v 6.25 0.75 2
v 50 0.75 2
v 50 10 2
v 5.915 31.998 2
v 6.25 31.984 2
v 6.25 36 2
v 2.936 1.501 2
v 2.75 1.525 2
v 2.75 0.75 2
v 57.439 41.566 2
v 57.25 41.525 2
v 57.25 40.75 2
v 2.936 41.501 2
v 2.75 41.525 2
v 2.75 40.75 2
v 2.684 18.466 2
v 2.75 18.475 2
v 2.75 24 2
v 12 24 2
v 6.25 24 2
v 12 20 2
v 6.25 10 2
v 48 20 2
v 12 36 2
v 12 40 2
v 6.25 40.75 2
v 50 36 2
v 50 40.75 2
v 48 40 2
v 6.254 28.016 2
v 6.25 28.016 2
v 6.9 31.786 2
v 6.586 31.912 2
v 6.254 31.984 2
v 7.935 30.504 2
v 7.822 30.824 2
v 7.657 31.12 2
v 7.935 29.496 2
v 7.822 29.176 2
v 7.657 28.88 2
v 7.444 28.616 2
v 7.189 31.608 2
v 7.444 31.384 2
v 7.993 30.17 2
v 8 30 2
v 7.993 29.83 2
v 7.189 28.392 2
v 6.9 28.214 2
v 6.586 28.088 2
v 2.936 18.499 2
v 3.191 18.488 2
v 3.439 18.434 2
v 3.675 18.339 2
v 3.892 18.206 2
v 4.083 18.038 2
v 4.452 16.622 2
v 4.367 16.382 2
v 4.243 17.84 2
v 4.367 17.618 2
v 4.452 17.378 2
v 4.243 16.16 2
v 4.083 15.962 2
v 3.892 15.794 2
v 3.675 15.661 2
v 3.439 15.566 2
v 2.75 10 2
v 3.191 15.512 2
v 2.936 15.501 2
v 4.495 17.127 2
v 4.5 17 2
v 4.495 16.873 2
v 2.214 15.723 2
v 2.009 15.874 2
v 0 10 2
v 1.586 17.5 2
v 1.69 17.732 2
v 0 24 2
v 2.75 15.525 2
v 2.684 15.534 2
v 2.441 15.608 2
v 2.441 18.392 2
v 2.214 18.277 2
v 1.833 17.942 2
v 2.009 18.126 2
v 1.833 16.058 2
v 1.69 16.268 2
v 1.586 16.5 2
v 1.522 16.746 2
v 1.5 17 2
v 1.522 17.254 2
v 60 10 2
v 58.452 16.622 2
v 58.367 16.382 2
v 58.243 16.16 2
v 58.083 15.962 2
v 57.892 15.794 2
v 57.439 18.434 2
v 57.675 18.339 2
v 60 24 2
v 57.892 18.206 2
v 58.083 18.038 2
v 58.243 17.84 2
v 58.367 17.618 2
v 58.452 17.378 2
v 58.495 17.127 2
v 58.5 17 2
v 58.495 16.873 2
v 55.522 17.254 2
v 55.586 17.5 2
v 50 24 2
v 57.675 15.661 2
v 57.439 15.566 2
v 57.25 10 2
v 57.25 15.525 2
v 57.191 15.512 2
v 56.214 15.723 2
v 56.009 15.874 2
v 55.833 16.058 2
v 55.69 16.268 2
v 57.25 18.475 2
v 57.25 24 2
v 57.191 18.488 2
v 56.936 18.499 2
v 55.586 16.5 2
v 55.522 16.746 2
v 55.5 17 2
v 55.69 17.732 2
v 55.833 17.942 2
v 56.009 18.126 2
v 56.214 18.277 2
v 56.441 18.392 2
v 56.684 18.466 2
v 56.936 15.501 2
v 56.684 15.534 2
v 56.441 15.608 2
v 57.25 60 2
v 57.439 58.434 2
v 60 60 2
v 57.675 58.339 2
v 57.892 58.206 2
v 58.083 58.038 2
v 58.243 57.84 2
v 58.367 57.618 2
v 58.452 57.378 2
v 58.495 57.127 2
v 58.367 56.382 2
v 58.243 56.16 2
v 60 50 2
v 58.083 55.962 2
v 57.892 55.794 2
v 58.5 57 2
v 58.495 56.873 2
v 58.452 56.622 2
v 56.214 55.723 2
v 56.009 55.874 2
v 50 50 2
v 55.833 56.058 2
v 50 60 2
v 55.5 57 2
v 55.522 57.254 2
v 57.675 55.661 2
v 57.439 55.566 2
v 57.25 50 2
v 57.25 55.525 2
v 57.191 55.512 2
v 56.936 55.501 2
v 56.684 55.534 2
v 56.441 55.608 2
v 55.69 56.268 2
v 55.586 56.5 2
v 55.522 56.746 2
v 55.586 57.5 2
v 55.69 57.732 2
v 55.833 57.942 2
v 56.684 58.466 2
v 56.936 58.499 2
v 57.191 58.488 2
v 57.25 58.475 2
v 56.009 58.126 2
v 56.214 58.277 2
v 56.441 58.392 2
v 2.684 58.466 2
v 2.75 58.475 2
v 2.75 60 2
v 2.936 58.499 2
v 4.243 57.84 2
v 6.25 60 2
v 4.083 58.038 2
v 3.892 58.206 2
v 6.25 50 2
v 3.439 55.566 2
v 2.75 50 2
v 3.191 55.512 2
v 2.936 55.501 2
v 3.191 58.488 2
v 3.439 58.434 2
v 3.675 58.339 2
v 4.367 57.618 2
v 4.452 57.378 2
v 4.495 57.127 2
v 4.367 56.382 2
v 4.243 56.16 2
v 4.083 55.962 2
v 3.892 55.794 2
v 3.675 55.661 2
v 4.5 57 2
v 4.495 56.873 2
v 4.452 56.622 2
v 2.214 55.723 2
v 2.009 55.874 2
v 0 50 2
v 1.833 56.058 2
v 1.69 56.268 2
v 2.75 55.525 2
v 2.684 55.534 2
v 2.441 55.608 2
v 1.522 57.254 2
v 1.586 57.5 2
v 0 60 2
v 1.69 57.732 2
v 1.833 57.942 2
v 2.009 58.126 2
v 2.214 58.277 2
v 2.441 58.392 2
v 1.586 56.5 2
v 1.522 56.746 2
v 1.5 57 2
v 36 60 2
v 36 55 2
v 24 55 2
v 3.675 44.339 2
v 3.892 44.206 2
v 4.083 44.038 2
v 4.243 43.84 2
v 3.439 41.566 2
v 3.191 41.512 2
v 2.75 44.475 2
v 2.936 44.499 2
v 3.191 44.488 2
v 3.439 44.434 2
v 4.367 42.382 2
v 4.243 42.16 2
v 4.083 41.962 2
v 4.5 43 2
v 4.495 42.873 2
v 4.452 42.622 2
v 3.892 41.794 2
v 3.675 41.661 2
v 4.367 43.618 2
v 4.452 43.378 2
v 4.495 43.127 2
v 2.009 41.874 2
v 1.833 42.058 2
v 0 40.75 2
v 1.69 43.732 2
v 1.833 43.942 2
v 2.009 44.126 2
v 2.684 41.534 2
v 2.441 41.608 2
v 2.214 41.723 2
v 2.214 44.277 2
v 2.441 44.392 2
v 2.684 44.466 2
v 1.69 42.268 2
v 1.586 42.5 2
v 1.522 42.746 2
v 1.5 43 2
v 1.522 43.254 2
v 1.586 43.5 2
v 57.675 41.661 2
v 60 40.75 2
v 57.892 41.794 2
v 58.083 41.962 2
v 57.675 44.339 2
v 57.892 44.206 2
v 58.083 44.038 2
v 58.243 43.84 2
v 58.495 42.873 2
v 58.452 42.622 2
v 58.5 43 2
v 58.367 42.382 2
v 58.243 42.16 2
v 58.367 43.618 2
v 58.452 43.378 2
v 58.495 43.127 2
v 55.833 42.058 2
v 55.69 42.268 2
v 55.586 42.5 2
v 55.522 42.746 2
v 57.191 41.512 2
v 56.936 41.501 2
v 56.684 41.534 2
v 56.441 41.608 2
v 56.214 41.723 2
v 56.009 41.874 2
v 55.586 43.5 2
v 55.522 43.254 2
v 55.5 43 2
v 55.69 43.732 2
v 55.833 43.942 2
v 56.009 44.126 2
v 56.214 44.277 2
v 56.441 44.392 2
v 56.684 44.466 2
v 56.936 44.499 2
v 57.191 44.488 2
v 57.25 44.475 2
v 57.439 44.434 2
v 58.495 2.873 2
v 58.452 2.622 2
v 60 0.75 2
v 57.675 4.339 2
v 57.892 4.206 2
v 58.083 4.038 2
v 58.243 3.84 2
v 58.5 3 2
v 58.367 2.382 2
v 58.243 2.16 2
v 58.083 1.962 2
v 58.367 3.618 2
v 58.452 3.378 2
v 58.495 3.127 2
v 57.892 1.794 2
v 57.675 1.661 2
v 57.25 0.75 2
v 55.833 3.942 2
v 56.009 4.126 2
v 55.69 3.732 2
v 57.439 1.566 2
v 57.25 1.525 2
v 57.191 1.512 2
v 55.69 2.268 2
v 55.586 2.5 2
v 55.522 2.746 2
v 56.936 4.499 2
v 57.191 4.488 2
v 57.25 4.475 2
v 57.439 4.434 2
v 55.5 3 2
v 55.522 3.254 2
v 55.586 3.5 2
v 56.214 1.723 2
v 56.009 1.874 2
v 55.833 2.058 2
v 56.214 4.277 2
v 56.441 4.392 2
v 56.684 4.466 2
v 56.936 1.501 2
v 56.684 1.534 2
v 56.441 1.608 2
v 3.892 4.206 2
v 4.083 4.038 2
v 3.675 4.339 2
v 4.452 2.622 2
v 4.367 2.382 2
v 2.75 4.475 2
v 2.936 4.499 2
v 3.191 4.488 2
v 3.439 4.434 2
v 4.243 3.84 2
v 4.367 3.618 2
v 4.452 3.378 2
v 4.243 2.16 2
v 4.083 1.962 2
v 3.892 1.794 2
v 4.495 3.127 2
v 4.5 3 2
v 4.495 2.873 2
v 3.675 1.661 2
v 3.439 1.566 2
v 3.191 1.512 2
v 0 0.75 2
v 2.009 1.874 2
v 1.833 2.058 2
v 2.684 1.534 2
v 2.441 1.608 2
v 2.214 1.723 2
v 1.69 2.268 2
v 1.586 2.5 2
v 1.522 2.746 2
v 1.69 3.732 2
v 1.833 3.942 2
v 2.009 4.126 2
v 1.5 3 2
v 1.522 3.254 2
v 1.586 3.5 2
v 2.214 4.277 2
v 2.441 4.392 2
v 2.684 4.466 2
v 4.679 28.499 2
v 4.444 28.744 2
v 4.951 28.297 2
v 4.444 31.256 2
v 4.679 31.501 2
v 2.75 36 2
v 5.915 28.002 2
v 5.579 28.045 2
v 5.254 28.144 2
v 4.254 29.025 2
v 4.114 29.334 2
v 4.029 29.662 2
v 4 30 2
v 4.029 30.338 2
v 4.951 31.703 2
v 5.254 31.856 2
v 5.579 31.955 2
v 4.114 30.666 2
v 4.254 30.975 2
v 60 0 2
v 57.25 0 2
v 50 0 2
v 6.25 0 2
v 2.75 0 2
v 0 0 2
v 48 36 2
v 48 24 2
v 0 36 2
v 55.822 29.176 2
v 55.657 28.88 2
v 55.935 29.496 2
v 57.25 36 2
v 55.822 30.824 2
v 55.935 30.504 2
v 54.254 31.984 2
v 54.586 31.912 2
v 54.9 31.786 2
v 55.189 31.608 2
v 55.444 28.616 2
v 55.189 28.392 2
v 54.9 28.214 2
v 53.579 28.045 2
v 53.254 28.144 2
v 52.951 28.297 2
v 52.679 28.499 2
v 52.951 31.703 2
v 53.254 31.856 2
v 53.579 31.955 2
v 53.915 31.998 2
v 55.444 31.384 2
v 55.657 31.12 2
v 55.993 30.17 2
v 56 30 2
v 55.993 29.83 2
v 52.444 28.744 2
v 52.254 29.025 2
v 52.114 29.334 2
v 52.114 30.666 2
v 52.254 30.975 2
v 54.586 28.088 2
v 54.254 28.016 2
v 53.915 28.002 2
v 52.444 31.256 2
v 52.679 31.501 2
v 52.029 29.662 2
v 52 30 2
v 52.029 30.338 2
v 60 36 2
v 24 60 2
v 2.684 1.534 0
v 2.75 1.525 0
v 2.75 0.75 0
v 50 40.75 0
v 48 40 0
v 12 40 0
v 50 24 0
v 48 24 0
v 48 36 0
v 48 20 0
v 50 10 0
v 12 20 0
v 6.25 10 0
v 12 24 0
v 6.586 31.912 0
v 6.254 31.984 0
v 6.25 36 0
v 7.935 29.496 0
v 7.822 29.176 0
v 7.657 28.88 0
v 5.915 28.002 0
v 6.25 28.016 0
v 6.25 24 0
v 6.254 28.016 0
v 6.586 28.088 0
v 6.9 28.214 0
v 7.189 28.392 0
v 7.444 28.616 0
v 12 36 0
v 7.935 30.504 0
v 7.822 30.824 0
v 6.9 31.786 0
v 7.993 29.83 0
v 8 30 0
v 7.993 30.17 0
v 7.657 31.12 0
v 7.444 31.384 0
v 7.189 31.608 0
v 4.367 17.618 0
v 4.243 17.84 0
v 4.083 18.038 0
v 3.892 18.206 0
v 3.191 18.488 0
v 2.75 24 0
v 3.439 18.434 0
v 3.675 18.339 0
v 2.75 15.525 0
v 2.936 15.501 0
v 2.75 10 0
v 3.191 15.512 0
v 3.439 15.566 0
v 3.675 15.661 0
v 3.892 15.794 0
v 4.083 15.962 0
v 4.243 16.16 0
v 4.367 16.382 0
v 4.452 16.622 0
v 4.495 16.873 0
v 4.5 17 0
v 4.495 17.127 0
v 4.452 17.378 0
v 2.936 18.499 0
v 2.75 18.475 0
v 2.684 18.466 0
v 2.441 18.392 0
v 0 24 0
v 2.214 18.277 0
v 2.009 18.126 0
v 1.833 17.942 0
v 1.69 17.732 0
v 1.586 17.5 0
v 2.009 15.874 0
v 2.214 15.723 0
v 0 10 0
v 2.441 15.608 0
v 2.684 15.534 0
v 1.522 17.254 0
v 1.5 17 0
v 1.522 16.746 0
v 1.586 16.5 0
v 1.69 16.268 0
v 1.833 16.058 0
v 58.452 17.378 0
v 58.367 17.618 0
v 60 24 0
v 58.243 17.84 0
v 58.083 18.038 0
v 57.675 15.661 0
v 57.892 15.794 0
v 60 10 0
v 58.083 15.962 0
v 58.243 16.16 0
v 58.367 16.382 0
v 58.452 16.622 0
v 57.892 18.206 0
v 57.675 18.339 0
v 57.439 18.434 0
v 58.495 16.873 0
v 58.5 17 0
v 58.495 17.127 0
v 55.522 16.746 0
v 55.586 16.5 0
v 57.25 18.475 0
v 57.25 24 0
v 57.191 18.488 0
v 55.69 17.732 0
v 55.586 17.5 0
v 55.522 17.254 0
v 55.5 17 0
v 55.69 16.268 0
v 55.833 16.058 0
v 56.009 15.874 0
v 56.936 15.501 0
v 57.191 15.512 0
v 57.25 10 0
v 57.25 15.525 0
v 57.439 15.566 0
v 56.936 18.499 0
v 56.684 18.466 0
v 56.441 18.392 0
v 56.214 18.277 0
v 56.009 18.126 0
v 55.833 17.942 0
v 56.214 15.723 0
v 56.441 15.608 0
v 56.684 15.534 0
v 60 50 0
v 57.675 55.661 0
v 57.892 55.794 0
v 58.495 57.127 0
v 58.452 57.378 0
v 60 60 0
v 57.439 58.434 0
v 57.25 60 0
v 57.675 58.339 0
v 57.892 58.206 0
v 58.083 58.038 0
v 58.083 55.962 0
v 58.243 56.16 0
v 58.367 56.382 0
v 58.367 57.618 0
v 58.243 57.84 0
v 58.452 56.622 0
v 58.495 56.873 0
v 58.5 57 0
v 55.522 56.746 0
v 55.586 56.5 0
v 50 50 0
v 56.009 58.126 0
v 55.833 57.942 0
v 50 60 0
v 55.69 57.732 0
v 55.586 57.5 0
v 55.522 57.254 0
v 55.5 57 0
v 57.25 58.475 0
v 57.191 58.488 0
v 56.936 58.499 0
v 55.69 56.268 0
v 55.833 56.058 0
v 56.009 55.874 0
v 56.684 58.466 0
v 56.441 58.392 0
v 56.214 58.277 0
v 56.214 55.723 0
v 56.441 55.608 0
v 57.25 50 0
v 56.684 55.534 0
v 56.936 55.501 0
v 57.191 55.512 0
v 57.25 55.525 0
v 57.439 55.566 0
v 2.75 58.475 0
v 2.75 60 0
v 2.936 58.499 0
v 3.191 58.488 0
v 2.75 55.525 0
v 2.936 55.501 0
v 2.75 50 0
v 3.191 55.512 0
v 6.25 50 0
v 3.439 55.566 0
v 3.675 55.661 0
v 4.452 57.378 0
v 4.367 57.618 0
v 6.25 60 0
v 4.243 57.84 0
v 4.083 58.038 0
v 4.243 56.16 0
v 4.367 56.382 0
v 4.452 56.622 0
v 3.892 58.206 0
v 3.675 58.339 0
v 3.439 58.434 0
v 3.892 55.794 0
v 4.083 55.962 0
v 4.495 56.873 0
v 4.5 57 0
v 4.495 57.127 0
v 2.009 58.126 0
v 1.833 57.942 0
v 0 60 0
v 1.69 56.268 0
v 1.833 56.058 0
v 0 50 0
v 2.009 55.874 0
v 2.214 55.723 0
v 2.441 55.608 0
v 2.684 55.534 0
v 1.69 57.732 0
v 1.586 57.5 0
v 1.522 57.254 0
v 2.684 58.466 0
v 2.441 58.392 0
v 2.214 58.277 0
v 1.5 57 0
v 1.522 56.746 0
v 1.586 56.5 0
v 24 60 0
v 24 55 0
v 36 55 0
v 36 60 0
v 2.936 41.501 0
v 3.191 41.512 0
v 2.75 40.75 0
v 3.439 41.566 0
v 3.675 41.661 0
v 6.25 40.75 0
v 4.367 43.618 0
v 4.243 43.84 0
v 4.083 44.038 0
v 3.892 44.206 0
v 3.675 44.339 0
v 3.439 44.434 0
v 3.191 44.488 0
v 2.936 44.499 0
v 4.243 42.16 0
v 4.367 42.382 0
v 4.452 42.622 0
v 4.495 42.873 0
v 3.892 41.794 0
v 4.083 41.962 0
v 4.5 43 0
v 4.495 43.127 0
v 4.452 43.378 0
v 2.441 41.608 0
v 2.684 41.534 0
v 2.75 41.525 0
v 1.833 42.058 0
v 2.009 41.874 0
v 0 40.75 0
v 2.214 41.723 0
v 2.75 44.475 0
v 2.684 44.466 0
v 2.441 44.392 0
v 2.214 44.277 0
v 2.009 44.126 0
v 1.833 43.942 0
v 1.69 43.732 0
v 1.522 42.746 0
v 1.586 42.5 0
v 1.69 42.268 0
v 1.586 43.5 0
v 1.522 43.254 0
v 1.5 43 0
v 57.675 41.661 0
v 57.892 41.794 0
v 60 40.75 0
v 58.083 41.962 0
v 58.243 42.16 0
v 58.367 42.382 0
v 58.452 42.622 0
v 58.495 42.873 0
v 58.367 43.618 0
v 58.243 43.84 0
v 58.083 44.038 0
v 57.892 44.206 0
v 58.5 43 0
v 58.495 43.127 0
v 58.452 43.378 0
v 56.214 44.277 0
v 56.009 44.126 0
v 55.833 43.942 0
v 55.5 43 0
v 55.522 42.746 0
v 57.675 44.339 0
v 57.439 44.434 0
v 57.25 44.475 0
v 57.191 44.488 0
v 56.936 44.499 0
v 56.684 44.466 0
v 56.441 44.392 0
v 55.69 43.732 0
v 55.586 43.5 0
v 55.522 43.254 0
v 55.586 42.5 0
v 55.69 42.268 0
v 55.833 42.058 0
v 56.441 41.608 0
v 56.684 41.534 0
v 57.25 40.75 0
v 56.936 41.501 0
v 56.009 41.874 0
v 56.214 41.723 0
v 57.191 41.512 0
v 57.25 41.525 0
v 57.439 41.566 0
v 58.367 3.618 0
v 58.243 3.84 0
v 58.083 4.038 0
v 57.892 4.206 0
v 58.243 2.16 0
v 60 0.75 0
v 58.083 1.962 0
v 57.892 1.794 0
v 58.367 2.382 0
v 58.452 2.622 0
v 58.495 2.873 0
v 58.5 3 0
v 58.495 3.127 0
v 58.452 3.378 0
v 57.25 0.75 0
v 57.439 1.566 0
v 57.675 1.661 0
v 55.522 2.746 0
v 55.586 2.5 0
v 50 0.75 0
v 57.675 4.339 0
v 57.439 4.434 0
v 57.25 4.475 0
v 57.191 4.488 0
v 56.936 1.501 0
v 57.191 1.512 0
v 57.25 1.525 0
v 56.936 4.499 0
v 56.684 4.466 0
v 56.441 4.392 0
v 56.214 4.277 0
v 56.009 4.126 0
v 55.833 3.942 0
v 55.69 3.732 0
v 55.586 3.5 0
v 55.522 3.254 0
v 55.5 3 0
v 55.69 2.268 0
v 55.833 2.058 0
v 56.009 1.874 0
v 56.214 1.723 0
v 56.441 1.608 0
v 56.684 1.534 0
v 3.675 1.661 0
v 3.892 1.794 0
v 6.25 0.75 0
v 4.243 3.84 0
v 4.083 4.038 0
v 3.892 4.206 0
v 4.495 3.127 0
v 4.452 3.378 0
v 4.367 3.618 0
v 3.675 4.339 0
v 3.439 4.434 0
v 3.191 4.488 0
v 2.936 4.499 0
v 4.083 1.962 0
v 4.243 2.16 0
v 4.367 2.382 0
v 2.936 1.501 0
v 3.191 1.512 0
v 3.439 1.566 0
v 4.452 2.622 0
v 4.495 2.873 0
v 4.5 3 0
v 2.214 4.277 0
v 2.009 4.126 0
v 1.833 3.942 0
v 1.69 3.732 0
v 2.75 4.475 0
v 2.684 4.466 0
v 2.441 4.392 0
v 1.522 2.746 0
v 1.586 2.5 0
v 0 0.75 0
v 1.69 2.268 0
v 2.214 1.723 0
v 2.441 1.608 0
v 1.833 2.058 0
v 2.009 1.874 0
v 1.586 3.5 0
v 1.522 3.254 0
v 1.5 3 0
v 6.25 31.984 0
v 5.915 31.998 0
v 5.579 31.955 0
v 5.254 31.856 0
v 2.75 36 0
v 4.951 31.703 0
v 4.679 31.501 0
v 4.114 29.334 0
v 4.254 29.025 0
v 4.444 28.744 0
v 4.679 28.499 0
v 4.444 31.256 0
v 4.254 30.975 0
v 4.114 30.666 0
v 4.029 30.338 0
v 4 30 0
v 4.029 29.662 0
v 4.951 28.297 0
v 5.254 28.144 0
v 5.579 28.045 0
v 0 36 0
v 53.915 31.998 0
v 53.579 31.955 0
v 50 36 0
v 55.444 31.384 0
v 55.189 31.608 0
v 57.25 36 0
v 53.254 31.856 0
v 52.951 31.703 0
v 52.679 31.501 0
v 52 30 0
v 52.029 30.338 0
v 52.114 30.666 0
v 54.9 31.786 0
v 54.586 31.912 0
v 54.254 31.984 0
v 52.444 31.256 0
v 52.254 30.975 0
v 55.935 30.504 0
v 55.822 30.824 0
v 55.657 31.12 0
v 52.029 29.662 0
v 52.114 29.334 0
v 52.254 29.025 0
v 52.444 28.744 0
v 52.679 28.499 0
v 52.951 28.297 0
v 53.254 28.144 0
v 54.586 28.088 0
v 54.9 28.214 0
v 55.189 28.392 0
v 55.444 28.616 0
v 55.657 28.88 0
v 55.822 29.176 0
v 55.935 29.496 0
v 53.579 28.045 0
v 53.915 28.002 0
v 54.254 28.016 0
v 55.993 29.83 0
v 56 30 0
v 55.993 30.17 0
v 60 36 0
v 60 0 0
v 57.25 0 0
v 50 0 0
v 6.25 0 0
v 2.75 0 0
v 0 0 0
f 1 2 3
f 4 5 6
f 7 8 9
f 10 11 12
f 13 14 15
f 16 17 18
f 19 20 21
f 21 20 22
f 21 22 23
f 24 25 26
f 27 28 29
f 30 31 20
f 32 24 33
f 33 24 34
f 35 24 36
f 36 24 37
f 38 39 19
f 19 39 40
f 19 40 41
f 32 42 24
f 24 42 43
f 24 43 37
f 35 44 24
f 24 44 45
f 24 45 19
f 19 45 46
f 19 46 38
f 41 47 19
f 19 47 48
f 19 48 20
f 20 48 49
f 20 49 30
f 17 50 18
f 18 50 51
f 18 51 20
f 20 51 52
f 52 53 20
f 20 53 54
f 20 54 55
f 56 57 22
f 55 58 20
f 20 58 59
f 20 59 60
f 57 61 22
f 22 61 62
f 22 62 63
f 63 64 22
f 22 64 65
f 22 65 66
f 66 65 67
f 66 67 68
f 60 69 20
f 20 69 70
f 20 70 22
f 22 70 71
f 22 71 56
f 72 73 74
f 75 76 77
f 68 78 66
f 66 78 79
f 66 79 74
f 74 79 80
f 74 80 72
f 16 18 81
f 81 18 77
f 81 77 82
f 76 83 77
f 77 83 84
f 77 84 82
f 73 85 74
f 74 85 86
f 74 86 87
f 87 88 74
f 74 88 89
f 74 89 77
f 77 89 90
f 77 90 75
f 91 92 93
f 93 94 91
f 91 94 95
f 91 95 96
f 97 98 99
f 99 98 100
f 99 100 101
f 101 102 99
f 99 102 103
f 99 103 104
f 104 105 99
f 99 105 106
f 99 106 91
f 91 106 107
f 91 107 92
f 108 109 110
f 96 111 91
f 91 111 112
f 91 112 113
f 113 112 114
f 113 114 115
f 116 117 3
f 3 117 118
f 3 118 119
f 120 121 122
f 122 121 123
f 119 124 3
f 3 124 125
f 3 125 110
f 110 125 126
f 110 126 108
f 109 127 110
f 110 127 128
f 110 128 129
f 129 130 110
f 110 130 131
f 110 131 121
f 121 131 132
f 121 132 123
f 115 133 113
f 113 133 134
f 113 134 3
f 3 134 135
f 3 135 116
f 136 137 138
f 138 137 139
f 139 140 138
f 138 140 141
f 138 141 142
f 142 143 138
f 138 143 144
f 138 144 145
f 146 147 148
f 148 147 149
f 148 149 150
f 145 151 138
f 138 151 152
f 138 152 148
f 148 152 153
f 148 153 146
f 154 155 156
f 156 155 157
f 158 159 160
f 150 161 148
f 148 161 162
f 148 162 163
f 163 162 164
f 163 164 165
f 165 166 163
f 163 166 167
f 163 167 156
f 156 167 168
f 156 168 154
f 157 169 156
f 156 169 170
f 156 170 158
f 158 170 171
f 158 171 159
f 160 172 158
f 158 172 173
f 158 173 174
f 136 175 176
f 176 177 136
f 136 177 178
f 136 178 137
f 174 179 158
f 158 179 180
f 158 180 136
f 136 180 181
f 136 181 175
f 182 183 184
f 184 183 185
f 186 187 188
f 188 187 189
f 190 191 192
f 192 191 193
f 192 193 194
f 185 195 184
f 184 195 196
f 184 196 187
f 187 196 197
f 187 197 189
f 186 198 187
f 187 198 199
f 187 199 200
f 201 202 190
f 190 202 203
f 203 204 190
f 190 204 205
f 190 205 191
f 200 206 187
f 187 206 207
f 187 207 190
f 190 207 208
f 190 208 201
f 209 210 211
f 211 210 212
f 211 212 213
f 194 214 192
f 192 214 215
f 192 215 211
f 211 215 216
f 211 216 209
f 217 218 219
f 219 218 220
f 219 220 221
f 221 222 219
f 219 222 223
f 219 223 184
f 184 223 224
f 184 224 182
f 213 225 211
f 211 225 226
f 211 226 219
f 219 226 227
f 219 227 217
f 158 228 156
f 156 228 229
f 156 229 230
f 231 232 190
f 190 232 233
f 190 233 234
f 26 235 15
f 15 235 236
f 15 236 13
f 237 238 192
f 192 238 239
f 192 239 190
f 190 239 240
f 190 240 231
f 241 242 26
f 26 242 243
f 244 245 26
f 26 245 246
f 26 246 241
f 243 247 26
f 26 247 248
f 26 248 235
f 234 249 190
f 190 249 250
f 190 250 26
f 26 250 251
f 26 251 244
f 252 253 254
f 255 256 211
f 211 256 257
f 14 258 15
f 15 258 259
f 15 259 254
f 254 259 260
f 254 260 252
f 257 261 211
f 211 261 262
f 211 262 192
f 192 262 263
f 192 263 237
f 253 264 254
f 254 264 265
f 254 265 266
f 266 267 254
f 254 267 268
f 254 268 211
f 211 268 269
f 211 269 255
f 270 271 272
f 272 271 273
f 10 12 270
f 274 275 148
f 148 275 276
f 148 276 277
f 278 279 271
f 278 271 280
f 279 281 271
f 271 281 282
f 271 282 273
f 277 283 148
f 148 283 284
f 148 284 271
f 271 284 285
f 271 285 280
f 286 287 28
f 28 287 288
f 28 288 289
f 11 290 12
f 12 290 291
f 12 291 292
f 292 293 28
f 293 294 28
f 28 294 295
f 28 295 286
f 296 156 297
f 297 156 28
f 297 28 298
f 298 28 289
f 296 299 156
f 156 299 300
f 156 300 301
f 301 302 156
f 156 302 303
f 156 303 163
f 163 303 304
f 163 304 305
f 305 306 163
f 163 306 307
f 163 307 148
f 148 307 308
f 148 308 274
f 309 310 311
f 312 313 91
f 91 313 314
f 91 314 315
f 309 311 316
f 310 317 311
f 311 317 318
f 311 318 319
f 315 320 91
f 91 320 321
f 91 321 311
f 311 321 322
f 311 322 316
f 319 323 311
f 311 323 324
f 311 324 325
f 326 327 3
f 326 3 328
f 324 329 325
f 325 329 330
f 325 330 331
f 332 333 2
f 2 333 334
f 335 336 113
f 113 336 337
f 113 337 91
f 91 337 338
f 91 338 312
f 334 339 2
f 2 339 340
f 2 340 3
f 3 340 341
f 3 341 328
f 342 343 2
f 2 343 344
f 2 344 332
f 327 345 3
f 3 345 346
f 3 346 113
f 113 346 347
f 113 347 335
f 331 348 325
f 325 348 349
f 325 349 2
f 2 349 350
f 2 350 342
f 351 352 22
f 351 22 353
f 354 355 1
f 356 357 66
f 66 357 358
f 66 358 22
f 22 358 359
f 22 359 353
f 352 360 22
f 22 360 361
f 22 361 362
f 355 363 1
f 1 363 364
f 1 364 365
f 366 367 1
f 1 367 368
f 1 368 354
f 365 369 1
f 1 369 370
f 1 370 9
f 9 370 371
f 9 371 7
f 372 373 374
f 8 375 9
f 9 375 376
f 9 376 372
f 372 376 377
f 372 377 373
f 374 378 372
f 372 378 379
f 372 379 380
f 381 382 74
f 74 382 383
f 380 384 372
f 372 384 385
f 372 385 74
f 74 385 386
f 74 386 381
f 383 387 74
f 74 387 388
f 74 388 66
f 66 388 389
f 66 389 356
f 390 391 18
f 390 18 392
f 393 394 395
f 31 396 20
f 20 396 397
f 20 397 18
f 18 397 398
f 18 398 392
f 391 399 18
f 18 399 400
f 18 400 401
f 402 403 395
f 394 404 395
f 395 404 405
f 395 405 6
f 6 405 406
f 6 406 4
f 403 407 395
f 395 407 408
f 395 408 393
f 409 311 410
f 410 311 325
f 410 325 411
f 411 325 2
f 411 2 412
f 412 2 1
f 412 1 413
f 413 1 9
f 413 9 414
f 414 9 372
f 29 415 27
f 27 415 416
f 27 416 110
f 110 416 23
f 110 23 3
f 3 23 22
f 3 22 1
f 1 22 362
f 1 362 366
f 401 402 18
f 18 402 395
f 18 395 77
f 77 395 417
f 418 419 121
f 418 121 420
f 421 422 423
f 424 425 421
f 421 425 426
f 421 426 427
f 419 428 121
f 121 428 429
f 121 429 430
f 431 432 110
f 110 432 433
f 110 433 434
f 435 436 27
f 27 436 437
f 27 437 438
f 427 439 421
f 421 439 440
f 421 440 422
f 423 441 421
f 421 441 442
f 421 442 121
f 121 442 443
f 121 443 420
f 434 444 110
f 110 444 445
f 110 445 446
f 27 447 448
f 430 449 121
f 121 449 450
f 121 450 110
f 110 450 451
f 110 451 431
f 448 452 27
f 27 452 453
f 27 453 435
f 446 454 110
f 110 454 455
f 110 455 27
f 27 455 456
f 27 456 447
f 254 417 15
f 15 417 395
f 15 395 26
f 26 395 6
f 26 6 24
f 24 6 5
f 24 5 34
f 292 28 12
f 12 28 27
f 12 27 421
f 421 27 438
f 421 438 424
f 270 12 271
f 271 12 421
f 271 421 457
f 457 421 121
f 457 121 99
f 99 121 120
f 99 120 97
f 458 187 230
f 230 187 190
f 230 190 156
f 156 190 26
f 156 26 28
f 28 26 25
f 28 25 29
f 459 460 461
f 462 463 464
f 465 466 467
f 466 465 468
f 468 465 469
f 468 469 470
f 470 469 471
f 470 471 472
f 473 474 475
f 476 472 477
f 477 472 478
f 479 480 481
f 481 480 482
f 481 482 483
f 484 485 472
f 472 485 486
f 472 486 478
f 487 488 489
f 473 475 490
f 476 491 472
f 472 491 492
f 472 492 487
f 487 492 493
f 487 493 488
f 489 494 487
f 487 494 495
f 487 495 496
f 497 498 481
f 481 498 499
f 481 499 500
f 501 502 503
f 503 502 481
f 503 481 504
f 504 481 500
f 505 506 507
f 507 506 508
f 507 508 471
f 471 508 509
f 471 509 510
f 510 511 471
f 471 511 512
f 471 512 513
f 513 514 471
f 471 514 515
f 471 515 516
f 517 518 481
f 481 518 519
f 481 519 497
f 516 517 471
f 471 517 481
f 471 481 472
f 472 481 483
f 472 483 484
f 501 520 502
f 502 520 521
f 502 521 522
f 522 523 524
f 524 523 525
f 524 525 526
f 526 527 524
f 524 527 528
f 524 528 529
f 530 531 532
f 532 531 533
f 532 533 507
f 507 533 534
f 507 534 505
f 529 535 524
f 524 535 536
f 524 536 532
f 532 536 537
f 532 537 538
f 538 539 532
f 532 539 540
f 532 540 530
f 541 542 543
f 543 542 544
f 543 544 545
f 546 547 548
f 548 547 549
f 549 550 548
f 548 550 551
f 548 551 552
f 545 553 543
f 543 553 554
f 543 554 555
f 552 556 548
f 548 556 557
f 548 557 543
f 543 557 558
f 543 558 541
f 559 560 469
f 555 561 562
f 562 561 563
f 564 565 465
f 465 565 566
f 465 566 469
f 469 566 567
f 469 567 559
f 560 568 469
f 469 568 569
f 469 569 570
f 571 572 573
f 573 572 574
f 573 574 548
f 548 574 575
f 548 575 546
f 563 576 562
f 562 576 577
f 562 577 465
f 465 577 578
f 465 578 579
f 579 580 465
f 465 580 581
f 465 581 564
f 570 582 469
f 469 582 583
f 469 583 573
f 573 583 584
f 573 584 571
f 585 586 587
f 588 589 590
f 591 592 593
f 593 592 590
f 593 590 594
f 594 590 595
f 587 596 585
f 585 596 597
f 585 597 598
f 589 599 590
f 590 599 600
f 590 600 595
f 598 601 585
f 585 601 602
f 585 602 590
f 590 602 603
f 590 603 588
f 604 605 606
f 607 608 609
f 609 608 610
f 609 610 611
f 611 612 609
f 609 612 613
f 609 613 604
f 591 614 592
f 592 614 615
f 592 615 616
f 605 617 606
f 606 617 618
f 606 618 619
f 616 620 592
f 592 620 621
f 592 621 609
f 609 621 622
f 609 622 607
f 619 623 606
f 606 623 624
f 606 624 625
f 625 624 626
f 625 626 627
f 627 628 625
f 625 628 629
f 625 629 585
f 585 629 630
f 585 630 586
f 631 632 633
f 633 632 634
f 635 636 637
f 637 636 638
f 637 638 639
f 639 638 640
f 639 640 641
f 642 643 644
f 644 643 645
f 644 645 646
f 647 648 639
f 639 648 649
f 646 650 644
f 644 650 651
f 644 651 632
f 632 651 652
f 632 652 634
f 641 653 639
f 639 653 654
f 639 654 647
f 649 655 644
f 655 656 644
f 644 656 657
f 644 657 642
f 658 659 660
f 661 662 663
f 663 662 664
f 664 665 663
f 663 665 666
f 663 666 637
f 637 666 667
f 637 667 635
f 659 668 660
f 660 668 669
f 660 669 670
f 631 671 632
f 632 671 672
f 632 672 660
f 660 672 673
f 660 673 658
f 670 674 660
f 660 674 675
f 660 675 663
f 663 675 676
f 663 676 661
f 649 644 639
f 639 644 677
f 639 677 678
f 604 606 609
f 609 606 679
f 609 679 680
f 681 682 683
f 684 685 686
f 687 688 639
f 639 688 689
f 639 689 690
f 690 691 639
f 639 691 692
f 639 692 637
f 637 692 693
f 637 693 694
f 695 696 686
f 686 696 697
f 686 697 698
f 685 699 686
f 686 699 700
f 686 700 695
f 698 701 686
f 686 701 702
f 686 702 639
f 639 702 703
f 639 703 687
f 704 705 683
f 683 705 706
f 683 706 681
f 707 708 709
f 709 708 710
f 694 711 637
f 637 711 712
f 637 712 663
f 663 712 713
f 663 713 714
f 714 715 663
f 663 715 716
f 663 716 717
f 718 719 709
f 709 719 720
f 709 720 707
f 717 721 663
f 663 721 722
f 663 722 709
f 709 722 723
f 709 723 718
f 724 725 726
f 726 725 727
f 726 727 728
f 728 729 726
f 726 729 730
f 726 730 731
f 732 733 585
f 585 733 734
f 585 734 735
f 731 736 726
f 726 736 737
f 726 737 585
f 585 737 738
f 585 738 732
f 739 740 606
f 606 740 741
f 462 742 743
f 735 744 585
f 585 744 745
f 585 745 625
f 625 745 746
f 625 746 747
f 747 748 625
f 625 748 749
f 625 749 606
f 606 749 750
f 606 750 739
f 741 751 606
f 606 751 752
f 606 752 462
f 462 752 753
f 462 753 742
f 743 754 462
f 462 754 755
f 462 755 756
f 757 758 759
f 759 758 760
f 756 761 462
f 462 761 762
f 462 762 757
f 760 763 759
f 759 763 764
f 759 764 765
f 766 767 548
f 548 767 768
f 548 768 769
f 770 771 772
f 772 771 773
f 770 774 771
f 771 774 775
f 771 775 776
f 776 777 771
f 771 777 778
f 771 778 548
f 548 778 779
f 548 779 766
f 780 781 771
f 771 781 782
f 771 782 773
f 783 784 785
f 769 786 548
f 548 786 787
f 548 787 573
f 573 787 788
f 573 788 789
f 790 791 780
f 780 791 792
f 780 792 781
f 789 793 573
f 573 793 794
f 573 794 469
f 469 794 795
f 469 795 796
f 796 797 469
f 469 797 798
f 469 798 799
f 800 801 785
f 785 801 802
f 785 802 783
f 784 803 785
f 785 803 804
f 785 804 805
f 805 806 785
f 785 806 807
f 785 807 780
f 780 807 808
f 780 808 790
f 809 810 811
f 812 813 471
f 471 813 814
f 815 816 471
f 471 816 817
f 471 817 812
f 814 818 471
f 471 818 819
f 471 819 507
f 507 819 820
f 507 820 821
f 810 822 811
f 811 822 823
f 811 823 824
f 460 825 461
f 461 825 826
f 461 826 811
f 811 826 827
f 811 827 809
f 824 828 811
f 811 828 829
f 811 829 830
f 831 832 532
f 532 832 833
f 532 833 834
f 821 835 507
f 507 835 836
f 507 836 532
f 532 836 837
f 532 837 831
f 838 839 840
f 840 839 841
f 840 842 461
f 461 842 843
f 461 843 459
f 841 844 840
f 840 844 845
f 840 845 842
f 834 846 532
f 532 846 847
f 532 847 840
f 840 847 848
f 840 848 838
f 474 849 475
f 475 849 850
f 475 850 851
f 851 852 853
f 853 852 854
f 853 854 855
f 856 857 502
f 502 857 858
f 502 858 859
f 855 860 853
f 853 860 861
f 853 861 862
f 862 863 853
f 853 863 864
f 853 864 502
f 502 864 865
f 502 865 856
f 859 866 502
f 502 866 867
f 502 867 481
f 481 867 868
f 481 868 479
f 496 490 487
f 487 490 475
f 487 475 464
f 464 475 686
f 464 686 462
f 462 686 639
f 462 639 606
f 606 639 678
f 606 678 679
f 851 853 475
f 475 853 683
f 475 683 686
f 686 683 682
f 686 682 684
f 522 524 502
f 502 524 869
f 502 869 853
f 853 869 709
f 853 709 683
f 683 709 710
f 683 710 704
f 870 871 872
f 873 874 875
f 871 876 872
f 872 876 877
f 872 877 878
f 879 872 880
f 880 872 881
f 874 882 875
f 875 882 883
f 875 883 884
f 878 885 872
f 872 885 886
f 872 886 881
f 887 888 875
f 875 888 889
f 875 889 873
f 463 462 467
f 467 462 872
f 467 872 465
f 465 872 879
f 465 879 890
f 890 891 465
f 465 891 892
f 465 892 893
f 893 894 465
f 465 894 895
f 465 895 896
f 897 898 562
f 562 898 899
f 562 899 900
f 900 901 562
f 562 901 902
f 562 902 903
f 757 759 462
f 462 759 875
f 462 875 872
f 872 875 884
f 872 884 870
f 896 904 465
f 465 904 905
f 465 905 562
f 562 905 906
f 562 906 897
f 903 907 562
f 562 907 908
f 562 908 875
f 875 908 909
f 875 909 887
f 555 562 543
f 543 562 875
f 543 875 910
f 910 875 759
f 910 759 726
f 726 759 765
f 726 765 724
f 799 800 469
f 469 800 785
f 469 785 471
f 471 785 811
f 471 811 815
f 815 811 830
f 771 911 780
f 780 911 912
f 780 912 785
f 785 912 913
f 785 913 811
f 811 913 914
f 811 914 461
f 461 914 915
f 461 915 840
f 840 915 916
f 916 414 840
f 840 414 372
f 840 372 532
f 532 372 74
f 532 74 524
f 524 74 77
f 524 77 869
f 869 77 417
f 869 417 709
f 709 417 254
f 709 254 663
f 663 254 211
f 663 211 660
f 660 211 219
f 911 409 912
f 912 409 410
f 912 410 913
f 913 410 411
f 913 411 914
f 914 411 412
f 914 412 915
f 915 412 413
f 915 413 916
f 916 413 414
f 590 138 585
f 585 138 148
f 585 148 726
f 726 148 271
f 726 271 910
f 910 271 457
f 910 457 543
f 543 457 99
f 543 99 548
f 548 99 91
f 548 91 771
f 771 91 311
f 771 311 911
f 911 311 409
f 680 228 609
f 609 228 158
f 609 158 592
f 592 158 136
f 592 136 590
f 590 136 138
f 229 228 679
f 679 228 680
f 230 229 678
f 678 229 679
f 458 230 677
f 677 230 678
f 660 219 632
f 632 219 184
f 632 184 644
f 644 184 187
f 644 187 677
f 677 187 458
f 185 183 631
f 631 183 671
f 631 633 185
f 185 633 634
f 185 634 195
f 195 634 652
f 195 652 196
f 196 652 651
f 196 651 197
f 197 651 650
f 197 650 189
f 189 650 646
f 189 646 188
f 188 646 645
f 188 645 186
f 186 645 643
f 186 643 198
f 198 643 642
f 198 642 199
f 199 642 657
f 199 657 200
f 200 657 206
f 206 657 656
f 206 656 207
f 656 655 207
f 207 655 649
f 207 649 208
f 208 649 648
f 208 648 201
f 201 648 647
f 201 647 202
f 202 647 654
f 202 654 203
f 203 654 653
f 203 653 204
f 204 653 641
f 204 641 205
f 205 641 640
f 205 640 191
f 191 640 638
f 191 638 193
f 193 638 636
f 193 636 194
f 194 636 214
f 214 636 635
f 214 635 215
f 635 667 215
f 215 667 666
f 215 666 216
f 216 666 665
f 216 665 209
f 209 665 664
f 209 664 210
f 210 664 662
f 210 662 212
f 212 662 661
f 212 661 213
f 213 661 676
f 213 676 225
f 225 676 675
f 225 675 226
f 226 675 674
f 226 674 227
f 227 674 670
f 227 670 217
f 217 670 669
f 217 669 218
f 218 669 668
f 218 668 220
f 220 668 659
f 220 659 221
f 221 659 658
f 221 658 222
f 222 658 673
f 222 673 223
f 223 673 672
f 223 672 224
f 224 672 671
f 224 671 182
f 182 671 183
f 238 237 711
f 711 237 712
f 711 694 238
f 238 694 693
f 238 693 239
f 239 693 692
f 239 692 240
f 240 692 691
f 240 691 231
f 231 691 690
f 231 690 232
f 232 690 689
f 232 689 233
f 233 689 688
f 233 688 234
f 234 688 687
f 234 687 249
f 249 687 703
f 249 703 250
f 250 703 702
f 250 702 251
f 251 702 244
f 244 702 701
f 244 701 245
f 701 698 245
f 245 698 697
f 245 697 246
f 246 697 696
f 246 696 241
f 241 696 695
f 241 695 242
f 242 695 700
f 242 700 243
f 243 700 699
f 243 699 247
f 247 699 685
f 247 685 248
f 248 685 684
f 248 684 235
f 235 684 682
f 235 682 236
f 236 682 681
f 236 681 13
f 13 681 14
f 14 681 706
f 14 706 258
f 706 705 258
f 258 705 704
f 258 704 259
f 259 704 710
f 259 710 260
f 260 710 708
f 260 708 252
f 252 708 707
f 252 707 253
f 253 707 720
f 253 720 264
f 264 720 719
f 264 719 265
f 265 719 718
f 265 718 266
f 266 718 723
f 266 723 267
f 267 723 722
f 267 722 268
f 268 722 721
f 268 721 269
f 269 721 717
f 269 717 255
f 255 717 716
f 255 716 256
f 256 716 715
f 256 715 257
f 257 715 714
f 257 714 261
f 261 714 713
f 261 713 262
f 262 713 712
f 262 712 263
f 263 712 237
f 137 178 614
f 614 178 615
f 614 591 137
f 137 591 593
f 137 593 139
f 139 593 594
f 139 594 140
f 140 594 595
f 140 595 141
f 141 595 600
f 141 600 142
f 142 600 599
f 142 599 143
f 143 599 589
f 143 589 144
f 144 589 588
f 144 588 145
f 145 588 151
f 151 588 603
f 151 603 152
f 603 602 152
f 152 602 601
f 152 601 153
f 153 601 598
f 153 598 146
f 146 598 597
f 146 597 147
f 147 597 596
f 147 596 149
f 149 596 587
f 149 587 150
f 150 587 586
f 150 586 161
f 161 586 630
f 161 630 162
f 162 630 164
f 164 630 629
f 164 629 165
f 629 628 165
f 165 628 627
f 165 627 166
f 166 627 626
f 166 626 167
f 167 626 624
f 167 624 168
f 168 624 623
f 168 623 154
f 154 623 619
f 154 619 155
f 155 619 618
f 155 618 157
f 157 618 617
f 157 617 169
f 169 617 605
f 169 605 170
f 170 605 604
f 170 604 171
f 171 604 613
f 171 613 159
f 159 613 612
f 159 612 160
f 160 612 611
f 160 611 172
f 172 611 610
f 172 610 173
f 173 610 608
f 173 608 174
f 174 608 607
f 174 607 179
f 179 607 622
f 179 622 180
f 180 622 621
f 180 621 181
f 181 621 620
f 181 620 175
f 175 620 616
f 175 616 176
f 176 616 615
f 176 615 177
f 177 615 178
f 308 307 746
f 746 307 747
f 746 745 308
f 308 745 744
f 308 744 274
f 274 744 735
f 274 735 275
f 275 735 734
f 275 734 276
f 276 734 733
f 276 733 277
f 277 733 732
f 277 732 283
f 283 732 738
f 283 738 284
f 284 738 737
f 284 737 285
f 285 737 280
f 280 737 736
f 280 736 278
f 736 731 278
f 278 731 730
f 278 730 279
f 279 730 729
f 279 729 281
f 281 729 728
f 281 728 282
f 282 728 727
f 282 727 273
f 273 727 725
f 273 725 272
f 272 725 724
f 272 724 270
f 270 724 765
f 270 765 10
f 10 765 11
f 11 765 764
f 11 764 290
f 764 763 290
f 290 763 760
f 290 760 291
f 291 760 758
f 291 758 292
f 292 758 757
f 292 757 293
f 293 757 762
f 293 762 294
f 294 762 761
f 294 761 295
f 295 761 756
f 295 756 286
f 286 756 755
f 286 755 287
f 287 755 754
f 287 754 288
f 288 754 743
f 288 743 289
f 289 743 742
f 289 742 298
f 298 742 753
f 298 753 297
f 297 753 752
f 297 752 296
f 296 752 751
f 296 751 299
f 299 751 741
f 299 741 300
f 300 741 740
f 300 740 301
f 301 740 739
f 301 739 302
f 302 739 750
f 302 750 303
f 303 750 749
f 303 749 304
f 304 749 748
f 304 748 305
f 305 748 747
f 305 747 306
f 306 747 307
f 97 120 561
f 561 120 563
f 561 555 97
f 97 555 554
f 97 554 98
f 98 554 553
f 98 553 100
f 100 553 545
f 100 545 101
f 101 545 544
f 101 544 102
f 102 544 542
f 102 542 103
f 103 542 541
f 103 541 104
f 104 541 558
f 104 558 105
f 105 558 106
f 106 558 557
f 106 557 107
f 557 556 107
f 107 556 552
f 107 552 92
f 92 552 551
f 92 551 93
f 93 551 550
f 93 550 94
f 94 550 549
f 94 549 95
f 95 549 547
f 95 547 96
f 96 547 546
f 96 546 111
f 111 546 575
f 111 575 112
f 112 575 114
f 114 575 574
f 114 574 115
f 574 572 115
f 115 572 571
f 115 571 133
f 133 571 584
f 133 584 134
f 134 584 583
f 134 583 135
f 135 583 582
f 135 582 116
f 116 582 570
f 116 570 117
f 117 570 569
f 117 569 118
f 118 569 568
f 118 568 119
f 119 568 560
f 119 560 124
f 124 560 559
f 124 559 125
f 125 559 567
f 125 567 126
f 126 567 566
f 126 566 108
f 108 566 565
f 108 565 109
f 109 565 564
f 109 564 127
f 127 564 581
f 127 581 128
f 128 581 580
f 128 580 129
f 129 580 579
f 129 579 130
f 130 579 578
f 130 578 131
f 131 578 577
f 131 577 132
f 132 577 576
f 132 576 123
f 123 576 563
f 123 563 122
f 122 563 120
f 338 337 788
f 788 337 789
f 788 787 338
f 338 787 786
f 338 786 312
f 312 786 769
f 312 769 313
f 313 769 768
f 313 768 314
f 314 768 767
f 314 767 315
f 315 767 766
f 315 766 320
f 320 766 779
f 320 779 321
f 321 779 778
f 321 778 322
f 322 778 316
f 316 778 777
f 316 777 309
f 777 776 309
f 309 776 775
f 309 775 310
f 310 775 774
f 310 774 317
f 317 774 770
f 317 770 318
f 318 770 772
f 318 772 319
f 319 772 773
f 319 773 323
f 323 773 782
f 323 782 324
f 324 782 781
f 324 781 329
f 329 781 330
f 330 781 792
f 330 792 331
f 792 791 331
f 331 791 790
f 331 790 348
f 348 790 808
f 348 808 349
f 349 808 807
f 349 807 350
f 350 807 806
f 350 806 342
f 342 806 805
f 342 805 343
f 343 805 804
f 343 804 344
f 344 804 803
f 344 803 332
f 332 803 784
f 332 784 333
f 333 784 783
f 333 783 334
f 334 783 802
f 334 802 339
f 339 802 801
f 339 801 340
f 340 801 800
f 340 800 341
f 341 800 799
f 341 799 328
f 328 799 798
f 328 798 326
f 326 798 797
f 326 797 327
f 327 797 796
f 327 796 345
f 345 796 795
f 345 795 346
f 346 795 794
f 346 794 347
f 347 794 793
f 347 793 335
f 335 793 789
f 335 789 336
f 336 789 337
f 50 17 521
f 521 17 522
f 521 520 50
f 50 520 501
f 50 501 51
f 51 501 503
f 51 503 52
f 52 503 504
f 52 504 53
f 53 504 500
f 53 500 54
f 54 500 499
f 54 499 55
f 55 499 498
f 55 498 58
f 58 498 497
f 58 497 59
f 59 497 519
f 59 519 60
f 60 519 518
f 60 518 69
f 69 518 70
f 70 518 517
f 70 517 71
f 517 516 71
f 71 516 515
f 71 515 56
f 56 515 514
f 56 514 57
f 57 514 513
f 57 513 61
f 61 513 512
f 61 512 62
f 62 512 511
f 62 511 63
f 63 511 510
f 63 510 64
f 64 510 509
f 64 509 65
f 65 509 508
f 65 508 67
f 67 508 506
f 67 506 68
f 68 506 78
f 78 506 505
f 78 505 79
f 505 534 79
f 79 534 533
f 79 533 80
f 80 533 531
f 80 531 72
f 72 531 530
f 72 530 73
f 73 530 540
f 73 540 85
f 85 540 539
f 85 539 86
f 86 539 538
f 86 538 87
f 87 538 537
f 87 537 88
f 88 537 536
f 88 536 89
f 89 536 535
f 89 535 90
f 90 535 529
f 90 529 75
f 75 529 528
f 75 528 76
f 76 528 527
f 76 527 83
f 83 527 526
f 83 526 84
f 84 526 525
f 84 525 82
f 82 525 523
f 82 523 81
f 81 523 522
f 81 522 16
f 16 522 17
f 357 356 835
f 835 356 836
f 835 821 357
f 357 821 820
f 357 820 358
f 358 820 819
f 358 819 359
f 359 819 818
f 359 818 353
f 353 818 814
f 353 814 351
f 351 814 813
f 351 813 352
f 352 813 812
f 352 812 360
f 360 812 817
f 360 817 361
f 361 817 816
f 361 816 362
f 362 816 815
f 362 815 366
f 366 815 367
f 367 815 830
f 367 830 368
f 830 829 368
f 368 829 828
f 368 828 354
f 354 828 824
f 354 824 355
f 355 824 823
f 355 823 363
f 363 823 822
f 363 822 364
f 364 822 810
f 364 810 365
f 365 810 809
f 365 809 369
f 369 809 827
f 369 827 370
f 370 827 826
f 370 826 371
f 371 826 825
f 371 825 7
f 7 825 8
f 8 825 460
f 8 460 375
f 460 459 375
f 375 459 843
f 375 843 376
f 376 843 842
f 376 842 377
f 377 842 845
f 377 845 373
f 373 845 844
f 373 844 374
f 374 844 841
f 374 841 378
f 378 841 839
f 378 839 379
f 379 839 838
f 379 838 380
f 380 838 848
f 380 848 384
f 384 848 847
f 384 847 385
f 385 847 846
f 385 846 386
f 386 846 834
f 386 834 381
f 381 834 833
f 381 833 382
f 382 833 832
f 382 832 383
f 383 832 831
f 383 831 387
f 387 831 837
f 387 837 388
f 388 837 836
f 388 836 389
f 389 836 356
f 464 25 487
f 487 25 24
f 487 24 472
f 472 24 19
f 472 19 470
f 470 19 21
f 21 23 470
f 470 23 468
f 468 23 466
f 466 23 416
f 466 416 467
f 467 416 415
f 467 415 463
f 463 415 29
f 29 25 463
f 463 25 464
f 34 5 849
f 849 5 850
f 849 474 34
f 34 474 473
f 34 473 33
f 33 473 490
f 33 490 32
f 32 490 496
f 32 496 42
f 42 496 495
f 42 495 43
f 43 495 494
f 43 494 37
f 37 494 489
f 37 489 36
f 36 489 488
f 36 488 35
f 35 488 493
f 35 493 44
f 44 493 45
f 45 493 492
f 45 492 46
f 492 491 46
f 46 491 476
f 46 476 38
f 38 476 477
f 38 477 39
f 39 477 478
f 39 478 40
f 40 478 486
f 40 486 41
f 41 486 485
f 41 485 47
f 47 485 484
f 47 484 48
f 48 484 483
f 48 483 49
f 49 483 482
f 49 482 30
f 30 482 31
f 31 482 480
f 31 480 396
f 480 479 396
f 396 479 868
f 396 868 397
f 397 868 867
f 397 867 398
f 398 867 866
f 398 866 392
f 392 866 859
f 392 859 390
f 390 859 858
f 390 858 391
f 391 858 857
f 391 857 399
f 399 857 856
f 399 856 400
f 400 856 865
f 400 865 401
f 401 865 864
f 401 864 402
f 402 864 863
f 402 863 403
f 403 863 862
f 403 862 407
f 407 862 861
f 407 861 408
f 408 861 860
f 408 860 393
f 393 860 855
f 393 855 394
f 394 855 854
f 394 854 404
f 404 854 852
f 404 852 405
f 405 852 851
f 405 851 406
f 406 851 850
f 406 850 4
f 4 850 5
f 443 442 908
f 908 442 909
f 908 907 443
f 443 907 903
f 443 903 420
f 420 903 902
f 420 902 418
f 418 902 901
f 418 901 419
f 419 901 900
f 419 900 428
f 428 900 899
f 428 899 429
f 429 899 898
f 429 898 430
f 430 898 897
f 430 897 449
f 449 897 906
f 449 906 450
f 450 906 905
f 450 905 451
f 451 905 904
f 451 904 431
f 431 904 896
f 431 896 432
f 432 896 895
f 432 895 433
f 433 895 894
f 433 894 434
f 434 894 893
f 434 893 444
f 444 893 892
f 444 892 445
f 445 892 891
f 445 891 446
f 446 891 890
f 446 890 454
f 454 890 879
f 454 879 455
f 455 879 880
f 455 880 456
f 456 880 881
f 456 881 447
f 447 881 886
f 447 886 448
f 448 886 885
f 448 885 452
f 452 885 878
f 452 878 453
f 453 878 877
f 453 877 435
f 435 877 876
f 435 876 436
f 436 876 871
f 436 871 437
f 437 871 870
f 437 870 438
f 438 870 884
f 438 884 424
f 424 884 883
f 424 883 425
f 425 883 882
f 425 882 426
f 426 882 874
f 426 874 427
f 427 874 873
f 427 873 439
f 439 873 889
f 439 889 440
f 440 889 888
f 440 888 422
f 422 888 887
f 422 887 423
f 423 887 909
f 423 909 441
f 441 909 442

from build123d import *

# Parameters (mm, degrees)
SKETCH1_R           = 1.5
SKETCH1_R_2         = 2
SKETCH1_W           = 36
SKETCH1_H           = 20
BOSS_EXTRUDE1_DEPTH = 2


with BuildPart() as part:
    # Sketch1 → Boss-Extrude1 (new body)
    with BuildSketch(Plane.XY):
        Polygon((36, 0), (60, 0), (60, 60), (36, 60), (36, 55), (24, 55), (24, 60), (0, 60), (0, 0), (24, 0), align=None)
        with Locations((3, 57)):
            Circle(SKETCH1_R, mode=Mode.SUBTRACT)
        with Locations((3, 43)):
            Circle(SKETCH1_R, mode=Mode.SUBTRACT)
        with Locations((57, 57)):
            Circle(SKETCH1_R, mode=Mode.SUBTRACT)
        with Locations((57, 43)):
            Circle(SKETCH1_R, mode=Mode.SUBTRACT)
        with Locations((57, 17)):
            Circle(SKETCH1_R, mode=Mode.SUBTRACT)
        with Locations((57, 3)):
            Circle(SKETCH1_R, mode=Mode.SUBTRACT)
        with Locations((3, 17)):
            Circle(SKETCH1_R, mode=Mode.SUBTRACT)
        with Locations((3, 3)):
            Circle(SKETCH1_R, mode=Mode.SUBTRACT)
        with Locations((6, 30)):
            Circle(SKETCH1_R_2, mode=Mode.SUBTRACT)
        with Locations((54, 30)):
            Circle(SKETCH1_R_2, mode=Mode.SUBTRACT)
        with Locations((30, 30)):
            Rectangle(SKETCH1_W, SKETCH1_H, mode=Mode.SUBTRACT)
    extrude(amount=BOSS_EXTRUDE1_DEPTH)


solid = part.part
